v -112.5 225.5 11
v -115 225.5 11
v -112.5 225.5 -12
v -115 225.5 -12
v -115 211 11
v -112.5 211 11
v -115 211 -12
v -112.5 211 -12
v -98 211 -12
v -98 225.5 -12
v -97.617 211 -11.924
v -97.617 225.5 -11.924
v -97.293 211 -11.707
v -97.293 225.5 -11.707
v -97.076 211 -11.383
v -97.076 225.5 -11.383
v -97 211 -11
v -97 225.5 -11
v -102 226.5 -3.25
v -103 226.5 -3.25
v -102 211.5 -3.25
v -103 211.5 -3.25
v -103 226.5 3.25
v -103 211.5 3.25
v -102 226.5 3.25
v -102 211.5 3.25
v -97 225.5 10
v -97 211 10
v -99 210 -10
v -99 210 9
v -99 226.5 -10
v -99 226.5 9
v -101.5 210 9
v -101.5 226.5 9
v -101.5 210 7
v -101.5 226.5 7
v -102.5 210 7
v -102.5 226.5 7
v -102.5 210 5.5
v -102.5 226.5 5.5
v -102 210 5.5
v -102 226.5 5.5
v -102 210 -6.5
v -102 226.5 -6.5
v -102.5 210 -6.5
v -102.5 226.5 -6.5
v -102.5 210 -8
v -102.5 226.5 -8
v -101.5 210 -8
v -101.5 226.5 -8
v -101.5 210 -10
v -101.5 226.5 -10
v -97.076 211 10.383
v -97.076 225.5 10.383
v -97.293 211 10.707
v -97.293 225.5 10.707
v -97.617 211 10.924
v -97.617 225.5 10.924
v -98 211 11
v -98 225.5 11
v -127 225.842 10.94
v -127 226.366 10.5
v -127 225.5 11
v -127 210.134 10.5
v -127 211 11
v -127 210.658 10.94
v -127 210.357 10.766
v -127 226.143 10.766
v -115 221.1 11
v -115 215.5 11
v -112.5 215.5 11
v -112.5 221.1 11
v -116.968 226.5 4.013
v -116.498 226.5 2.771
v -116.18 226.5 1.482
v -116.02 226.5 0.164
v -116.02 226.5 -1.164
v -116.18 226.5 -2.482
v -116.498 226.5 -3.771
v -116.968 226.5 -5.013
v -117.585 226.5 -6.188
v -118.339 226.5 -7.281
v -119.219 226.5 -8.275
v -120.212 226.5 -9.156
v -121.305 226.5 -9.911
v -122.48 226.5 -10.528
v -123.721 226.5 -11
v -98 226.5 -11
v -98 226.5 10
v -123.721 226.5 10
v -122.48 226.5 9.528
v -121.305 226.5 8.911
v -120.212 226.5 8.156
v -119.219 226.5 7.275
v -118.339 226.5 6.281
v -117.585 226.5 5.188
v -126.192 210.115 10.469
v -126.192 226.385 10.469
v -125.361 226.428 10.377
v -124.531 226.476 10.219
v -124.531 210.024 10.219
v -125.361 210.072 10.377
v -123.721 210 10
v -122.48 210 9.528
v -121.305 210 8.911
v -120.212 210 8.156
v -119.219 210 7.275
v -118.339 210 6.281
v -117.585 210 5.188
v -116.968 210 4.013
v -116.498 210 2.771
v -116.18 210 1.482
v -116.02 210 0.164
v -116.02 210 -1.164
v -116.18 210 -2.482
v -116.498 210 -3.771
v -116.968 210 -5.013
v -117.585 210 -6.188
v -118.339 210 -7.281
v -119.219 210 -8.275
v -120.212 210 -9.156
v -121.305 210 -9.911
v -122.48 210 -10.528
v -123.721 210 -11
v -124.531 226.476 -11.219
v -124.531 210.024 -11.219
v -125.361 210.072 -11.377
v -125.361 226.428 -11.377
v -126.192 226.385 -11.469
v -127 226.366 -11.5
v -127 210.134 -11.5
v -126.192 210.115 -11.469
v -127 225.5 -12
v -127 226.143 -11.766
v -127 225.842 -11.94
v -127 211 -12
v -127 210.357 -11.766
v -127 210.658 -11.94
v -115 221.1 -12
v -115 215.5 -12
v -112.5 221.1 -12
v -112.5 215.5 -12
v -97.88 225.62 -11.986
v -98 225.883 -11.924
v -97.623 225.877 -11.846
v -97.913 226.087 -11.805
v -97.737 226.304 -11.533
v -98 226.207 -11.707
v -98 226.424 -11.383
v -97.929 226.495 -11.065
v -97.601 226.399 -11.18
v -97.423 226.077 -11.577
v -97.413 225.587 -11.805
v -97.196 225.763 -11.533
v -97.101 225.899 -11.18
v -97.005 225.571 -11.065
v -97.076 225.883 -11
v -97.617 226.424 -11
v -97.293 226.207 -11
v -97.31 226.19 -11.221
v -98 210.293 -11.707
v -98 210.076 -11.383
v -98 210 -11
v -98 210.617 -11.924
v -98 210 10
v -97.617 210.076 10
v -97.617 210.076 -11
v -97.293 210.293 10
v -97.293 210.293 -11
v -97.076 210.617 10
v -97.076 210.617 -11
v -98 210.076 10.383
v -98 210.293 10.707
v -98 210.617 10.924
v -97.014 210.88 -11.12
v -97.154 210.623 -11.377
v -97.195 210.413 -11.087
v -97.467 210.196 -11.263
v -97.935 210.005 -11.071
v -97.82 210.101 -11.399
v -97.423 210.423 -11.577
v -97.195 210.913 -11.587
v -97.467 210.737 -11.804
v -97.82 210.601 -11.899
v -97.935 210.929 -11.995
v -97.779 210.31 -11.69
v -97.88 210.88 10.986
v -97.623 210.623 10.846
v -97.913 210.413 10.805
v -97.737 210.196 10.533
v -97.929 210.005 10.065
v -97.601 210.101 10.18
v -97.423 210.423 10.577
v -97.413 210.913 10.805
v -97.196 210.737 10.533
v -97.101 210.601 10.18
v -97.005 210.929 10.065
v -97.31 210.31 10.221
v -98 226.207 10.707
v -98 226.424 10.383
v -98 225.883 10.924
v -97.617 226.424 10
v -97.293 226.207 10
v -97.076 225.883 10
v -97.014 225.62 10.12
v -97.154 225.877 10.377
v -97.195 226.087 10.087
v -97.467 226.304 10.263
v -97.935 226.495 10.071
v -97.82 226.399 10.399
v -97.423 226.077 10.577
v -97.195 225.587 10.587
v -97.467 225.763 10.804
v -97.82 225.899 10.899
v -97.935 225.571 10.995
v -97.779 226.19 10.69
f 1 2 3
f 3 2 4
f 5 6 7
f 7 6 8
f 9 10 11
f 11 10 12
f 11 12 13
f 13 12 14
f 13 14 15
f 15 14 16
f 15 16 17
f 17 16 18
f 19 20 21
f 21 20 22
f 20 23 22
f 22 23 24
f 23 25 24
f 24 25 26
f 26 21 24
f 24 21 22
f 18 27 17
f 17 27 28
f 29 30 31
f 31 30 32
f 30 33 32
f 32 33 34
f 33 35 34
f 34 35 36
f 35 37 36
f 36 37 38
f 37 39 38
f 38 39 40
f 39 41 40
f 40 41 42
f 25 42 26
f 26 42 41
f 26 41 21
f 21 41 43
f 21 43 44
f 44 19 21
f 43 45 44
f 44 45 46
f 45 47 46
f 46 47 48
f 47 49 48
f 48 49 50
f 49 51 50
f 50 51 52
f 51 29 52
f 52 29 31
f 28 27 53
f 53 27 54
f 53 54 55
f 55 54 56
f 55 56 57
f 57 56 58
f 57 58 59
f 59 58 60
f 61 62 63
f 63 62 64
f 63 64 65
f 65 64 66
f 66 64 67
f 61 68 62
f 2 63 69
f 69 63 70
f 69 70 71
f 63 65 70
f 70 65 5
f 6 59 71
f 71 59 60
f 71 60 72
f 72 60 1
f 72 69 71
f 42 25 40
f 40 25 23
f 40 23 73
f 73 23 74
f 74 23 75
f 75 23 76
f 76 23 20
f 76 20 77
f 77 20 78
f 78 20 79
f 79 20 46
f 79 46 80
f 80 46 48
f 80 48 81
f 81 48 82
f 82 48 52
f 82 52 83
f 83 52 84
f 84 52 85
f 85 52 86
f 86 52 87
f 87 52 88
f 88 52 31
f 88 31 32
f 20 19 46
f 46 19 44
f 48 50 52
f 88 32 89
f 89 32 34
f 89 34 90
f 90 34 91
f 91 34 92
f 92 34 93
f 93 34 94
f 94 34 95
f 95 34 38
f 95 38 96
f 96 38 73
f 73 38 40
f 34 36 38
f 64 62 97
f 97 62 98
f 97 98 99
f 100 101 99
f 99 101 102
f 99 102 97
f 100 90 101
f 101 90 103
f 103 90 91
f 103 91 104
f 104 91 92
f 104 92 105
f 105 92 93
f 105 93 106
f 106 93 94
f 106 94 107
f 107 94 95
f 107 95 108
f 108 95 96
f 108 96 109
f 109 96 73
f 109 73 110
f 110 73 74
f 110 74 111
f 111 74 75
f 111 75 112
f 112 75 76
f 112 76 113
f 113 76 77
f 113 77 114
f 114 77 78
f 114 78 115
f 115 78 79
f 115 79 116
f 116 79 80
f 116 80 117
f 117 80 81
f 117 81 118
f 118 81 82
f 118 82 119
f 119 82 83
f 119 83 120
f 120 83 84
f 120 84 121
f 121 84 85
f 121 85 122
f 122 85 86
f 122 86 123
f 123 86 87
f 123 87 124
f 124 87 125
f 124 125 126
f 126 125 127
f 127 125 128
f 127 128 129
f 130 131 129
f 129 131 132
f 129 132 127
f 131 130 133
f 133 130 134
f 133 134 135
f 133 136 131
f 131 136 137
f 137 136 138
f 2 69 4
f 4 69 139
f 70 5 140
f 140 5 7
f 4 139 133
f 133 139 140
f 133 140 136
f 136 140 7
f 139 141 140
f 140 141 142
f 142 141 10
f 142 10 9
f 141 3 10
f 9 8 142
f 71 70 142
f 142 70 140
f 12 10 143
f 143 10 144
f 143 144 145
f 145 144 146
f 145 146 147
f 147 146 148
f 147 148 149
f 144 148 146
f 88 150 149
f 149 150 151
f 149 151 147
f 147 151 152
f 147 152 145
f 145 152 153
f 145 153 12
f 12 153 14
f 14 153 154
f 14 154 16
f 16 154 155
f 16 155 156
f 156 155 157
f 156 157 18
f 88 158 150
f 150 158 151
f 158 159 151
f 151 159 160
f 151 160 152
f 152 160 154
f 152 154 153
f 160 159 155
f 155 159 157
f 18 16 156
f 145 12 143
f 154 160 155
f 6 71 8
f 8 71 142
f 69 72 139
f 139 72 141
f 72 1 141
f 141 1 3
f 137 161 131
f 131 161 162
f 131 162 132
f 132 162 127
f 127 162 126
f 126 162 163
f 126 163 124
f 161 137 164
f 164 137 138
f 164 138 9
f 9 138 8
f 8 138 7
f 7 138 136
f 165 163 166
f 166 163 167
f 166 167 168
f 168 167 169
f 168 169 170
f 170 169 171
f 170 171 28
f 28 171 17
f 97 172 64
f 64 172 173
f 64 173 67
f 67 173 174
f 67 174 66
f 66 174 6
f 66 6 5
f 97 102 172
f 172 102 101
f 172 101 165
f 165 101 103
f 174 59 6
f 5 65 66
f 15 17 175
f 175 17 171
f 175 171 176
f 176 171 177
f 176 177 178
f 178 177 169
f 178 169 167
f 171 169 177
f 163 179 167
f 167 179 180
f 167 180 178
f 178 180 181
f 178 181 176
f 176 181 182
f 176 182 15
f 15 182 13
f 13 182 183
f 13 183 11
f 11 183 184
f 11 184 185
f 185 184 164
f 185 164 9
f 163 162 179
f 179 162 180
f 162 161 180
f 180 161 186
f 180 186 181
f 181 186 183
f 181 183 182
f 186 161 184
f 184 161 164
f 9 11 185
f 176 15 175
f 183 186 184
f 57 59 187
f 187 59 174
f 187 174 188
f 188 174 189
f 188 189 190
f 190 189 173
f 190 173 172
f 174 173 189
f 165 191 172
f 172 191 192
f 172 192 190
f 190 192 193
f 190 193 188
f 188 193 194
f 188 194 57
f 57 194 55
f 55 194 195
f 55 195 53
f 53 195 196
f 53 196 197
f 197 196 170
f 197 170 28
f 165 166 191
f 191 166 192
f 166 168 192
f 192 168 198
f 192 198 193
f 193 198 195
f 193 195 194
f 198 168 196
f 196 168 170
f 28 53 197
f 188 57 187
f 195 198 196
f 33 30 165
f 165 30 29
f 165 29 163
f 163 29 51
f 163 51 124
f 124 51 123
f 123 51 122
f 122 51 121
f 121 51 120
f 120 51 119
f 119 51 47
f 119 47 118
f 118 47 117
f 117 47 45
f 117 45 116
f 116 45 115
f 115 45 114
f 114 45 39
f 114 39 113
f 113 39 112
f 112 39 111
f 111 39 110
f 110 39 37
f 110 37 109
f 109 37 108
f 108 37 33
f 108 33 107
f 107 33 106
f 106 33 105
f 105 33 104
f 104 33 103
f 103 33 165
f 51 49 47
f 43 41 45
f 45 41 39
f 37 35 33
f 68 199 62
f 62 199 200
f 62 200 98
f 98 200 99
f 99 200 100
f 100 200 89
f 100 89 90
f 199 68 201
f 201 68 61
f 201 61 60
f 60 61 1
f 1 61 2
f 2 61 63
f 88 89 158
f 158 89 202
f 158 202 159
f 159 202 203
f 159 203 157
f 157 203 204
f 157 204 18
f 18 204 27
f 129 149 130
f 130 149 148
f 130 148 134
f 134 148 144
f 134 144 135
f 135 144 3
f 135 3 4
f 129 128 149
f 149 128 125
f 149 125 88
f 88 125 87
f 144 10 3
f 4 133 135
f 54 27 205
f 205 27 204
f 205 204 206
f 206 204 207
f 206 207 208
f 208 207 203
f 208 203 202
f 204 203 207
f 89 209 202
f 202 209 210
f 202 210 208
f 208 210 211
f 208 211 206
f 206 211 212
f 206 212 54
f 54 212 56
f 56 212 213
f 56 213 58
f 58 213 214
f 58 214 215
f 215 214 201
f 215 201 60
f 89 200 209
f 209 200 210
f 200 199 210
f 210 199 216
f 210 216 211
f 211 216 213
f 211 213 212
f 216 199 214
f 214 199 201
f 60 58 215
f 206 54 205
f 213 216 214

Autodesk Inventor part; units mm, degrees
ref_plane "YZ Plane" through (0, 0, 0) normal (1, 0, 0) x (0, 1, 0)
ref_plane "XZ Plane" through (0, 0, 0) normal (0, 1, 0) x (-1, 0, 0)
ref_plane "XY Plane" through (0, 0, 0) normal (0, 0, 1) x (1, 0, 0)
sketch "Sketch1" plane through (0, 0, 0) normal (0, 1, 0) x (-1, 0, 0)
  line L0 (162, 9) -> (164.5, 9)
  line L1 (164.5, -10) -> (162, -10)
  line L2 (162, -10) -> (162, 9)
  line L3 (190, 11) -> (161, 11)
  line L4 (160, 10) -> (160, -11)
  line L5 (161, -12) -> (190, -12)
  line L6 (164.5, 7) -> (165.5, 7)
  line L7 (164.5, -8) -> (165.5, -8)
  line L8 (165.5, 7) -> (165.5, 5.5)
  line L9 (165.5, 5.5) -> (165, 5.5)
  line L10 (165.5, -8) -> (165.5, -6.5)
  line L11 (165.5, -6.5) -> (165, -6.5)
  line L12 (164.5, 7) -> (164.5, 9)
  line L13 (165, 5.5) -> (165, -6.5)
  line L14 (164.5, -8) -> (164.5, -10)
  arc A0 (161, 11) -> (160, 10) centre (161, 10) ccw
  arc A1 (160, -11) -> (161, -12) centre (161, -11) ccw
  line L15 (190, 11) -> (190, -12)
  point P0 (0, 0)
  dimension "d0" = 19
  dimension "d1" = 2.5
  dimension "d3" = 2
  dimension "d4" = 2
  dimension "d5" = 2
  dimension "d7" = 1
  dimension "d8" = 15
  dimension "d10" = 1.5
  dimension "d11" = 1.5
  dimension "d12" = 1
  dimension "d22" = 4
  dimension "d28" = 3
  dimension "d36" = 30
  dimension "d46" = 11
  dimension "d48" = 190
extrude "Extrusion1" add sketch "Sketch1" along normal blind 16.5
sketch "Sketch5" plane through (0, 16.5, 0) normal (0, 1, 0) x (1, 0, 0)
  line L0 (-165, -3.25) -> (-166, -3.25)
  line L1 (-166, -3.25) -> (-166, 3.25)
  line L2 (-166, 3.25) -> (-165, 3.25)
  line L3 (-165, 3.25) -> (-165, -3.25)
  line L4 (-165, -5.5) -> (-165, 6.5) projected
  line L5 (-190, -11) -> (-161, -11) projected
  point P0 (0, 0)
  point P1 (-21.5, -2)
  dimension "d15" = 1
  dimension "d16" = 6.5
  dimension "d17" = 0
  dimension "d18" = 7.75
extrude "Extrusion2" cut sketch "Sketch5" against normal blind 15
move or copy body "Move Body2" bodies to move or copy 1 copy no translate (63, 210, 0)
fillet "Fillet1" [suppressed]
sketch "Sketch21" plane through (-127, 226.5, 11) normal (0, 1, 0) x (1, 0, 0)
  circle A0 centre (0, 11.5) radius 11
  line L0 (24, 7.75) -> (24, 14.25) projected
  line L1 (29, 23) -> (0, 23) projected
  circle A1 centre (0, 11.5) radius 13
  line L2 (0, 0) -> (29, 0) projected
  point P0 (127, 11)
  point P1 (6.0622, 0)
  dimension "d61" = 26
  dimension "d56" = 22
  dimension "d57" = 24
  dimension "d58" = 11.5
extrude "Extrusion4" cut sketch "Sketch21" against normal up to next contours A0
sketch "Sketch24" plane through (-98, 210, -12) normal (0, 0, -1) x (-1, 0, 0)
  line L0 (17, 1) -> (14.5, 1)
  line L1 (14.5, 1) -> (14.5, 5.5)
  line L2 (14.5, 5.5) -> (17, 5.5)
  line L3 (17, 5.5) -> (17, 1)
  line L4 (17, 11.1) -> (14.5, 11.1)
  line L5 (14.5, 11.1) -> (14.5, 15.5)
  line L6 (14.5, 15.5) -> (17, 15.5)
  line L7 (17, 15.5) -> (17, 11.1)
  line L8 (29, 0) -> (0, 0) projected
  line L9 (29, 0) -> (29, 16.5) projected
  line L10 (0, 16.5) -> (29, 16.5) projected
  point P0 (-98, -210)
  dimension "d68" = 2.5
  dimension "d69" = 4.5
  dimension "d70" = 2.5
  dimension "d71" = 4.4
  dimension "d72" = 1
  dimension "d73" = 12
  dimension "d74" = 12
  dimension "d75" = 1
extrude "Extrusion5" cut sketch "Sketch24" against normal up to next
fillet "Fillet2" radius 1 10 edges at (-97.2929, 210, -11.7071) (-97, 210, -0.5) (-97.2929, 210, 10.7071) (-112.5, 210, 11) (-112.5, 210, -12) (-97.2929, 226.5, -11.7071) (-97, 226.5, -0.5) (-97.2929, 226.5, 10.7071) (-112.5, 226.5, 11) (-112.5, 226.5, -12)
properties part number "rear_light_mount"
